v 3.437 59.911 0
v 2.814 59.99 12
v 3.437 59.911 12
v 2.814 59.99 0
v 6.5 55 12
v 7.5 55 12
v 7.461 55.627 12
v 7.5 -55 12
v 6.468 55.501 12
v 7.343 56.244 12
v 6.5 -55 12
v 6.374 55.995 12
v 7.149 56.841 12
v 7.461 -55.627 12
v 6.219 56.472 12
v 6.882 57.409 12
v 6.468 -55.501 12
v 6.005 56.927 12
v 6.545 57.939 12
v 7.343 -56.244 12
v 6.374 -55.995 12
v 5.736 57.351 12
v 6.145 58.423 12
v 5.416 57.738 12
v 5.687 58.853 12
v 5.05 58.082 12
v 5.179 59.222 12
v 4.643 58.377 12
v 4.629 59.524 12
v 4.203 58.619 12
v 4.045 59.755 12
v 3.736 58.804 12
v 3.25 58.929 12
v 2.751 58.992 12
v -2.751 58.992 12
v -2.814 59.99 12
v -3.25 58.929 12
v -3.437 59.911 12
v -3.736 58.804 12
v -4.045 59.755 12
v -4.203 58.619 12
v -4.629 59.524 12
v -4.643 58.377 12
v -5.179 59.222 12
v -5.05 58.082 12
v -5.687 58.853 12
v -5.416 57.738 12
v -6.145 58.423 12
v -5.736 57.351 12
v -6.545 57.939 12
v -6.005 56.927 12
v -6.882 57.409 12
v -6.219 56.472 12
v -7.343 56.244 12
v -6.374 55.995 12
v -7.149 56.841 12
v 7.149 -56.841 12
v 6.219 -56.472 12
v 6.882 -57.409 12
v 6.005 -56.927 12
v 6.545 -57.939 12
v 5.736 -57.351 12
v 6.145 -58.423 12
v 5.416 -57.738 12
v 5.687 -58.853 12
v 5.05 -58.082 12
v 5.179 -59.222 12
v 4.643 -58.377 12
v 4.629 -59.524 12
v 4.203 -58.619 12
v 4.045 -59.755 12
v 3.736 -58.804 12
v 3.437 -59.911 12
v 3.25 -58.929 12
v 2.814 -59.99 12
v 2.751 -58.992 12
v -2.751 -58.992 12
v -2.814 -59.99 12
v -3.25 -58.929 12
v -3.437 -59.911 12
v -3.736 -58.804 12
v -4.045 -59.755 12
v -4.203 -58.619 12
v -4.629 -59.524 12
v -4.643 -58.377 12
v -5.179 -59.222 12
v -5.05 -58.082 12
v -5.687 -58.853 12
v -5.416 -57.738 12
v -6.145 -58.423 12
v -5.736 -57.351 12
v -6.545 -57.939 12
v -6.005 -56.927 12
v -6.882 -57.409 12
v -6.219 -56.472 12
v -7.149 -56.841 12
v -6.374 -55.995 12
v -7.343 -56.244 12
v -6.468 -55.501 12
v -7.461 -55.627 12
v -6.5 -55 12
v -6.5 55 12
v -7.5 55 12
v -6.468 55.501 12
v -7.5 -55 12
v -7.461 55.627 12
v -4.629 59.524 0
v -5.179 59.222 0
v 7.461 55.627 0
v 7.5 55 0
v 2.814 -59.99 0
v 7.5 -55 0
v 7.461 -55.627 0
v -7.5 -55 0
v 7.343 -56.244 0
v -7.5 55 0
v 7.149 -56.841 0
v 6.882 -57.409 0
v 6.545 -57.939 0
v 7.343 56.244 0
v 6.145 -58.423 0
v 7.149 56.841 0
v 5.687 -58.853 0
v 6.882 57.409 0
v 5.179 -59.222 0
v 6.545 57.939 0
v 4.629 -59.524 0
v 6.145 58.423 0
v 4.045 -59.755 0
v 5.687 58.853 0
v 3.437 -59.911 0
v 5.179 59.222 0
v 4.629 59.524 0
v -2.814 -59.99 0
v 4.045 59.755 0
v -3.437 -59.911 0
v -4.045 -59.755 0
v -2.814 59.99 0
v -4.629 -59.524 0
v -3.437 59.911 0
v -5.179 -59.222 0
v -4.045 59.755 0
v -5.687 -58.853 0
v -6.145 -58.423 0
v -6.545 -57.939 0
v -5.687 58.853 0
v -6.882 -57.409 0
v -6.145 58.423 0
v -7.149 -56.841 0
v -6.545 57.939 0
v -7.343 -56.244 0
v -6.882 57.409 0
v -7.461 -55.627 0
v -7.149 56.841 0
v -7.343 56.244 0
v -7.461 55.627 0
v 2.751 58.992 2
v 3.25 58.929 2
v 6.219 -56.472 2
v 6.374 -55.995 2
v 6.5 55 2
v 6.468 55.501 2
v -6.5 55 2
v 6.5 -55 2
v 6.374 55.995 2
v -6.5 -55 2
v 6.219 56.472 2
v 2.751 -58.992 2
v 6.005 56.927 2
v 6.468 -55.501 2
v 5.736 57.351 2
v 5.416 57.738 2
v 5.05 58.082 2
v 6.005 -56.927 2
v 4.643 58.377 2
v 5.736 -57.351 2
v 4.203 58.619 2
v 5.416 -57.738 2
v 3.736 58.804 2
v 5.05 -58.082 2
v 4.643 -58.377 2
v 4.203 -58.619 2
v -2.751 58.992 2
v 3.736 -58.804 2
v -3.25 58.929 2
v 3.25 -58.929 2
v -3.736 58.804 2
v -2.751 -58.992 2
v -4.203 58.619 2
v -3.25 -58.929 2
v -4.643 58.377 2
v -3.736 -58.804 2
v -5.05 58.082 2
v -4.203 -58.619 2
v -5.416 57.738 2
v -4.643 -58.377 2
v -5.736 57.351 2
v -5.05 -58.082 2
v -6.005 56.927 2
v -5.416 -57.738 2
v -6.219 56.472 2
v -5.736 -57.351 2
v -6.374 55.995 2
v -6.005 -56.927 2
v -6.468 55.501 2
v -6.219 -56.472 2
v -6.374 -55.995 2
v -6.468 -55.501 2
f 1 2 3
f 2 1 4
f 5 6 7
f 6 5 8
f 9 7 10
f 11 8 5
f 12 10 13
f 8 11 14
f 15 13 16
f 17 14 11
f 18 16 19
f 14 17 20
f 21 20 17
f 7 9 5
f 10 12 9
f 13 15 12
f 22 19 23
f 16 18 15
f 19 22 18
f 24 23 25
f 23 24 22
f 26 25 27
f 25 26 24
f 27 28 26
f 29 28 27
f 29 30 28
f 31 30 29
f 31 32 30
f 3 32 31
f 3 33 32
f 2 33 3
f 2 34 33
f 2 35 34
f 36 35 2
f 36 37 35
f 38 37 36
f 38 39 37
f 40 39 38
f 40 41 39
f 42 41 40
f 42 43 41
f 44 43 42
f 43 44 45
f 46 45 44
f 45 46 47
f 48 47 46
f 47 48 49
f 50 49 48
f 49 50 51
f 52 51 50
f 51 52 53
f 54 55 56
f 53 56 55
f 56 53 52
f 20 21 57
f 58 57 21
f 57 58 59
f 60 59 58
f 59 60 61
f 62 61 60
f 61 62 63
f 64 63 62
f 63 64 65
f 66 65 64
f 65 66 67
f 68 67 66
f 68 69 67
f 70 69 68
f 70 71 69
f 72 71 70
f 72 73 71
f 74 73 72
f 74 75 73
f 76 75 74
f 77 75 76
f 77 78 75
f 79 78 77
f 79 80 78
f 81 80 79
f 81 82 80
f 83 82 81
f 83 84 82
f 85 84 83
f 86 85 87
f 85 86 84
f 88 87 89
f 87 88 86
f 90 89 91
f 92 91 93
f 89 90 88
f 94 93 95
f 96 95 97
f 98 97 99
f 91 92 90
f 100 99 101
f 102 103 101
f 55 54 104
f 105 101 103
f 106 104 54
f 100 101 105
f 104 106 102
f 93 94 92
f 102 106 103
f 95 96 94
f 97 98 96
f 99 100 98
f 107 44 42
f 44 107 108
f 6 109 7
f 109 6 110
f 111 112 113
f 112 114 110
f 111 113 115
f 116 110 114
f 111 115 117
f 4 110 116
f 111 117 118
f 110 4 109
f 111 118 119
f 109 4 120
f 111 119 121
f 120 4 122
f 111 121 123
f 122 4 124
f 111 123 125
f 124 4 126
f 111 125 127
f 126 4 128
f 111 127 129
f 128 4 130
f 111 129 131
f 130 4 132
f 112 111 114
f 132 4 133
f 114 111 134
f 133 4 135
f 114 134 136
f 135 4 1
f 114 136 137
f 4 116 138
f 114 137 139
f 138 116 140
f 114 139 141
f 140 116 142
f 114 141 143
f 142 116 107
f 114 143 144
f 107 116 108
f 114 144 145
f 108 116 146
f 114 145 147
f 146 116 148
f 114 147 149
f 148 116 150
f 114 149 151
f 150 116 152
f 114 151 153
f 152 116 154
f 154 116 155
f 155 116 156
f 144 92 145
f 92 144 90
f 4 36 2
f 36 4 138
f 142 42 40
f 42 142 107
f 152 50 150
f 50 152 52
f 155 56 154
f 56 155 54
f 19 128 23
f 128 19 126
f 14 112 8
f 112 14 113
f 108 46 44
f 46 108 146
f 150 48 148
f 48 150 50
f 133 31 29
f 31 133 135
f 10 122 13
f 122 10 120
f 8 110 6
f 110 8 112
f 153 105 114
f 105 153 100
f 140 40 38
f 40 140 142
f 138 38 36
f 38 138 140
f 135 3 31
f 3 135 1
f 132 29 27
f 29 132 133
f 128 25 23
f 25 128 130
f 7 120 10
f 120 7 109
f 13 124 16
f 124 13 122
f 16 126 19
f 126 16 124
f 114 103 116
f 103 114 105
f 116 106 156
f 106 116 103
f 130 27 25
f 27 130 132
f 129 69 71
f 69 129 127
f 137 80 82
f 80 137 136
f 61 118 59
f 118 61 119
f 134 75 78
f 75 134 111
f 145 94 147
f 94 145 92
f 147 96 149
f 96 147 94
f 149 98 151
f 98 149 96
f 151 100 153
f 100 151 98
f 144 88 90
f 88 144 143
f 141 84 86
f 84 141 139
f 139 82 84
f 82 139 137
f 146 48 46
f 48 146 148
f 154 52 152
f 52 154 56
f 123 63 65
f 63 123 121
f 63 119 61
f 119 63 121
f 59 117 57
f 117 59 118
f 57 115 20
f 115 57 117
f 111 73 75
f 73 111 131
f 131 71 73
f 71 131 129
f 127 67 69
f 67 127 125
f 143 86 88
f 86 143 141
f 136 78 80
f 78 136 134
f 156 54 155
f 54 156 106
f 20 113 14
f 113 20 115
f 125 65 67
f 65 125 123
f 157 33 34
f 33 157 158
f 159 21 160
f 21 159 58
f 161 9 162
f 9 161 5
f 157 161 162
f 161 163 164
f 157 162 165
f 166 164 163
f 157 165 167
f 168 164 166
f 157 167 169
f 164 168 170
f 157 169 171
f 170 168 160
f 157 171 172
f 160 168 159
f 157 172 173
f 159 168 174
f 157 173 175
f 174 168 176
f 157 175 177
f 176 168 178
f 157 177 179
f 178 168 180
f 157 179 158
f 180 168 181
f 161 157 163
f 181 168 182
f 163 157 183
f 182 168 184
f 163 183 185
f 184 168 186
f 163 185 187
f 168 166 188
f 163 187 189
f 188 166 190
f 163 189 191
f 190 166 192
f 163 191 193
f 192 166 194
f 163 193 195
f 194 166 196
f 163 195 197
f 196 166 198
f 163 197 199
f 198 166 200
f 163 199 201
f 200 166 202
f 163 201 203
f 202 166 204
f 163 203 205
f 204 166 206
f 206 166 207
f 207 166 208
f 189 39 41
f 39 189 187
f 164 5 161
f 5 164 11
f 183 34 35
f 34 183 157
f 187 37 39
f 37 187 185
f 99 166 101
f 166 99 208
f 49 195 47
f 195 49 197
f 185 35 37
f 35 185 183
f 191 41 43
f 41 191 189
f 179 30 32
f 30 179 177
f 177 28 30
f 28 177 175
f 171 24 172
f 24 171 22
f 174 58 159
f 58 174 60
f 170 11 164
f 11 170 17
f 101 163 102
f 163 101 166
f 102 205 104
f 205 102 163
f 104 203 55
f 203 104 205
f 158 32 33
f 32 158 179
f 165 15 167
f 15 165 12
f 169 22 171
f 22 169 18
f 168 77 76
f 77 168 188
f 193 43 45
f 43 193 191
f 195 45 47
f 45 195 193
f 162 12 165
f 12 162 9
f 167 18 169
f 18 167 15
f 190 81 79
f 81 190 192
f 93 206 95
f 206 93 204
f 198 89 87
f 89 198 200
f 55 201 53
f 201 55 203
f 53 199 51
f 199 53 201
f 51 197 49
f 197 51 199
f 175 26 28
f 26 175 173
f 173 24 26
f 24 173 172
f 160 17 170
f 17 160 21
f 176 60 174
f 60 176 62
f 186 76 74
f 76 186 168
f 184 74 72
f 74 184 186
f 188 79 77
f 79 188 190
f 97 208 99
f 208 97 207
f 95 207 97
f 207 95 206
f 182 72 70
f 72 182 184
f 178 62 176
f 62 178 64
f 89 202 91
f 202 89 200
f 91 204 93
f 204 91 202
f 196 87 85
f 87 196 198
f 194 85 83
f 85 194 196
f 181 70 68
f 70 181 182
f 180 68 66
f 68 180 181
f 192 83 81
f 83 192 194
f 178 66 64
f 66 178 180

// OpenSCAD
$fn = 50;


difference() {
	union() {
		hull() {
			translate(v = [-2.5000000000, 55.0000000000, 0]) {
				cylinder(h = 12, r = 5);
			}
			translate(v = [2.5000000000, 55.0000000000, 0]) {
				cylinder(h = 12, r = 5);
			}
			translate(v = [-2.5000000000, -55.0000000000, 0]) {
				cylinder(h = 12, r = 5);
			}
			translate(v = [2.5000000000, -55.0000000000, 0]) {
				cylinder(h = 12, r = 5);
			}
		}
	}
	union() {
		translate(v = [0, 0, 2]) {
			hull() {
				translate(v = [-2.5000000000, 55.0000000000, 0]) {
					cylinder(h = 10, r = 4);
				}
				translate(v = [2.5000000000, 55.0000000000, 0]) {
					cylinder(h = 10, r = 4);
				}
				translate(v = [-2.5000000000, -55.0000000000, 0]) {
					cylinder(h = 10, r = 4);
				}
				translate(v = [2.5000000000, -55.0000000000, 0]) {
					cylinder(h = 10, r = 4);
				}
			}
		}
	}
}
